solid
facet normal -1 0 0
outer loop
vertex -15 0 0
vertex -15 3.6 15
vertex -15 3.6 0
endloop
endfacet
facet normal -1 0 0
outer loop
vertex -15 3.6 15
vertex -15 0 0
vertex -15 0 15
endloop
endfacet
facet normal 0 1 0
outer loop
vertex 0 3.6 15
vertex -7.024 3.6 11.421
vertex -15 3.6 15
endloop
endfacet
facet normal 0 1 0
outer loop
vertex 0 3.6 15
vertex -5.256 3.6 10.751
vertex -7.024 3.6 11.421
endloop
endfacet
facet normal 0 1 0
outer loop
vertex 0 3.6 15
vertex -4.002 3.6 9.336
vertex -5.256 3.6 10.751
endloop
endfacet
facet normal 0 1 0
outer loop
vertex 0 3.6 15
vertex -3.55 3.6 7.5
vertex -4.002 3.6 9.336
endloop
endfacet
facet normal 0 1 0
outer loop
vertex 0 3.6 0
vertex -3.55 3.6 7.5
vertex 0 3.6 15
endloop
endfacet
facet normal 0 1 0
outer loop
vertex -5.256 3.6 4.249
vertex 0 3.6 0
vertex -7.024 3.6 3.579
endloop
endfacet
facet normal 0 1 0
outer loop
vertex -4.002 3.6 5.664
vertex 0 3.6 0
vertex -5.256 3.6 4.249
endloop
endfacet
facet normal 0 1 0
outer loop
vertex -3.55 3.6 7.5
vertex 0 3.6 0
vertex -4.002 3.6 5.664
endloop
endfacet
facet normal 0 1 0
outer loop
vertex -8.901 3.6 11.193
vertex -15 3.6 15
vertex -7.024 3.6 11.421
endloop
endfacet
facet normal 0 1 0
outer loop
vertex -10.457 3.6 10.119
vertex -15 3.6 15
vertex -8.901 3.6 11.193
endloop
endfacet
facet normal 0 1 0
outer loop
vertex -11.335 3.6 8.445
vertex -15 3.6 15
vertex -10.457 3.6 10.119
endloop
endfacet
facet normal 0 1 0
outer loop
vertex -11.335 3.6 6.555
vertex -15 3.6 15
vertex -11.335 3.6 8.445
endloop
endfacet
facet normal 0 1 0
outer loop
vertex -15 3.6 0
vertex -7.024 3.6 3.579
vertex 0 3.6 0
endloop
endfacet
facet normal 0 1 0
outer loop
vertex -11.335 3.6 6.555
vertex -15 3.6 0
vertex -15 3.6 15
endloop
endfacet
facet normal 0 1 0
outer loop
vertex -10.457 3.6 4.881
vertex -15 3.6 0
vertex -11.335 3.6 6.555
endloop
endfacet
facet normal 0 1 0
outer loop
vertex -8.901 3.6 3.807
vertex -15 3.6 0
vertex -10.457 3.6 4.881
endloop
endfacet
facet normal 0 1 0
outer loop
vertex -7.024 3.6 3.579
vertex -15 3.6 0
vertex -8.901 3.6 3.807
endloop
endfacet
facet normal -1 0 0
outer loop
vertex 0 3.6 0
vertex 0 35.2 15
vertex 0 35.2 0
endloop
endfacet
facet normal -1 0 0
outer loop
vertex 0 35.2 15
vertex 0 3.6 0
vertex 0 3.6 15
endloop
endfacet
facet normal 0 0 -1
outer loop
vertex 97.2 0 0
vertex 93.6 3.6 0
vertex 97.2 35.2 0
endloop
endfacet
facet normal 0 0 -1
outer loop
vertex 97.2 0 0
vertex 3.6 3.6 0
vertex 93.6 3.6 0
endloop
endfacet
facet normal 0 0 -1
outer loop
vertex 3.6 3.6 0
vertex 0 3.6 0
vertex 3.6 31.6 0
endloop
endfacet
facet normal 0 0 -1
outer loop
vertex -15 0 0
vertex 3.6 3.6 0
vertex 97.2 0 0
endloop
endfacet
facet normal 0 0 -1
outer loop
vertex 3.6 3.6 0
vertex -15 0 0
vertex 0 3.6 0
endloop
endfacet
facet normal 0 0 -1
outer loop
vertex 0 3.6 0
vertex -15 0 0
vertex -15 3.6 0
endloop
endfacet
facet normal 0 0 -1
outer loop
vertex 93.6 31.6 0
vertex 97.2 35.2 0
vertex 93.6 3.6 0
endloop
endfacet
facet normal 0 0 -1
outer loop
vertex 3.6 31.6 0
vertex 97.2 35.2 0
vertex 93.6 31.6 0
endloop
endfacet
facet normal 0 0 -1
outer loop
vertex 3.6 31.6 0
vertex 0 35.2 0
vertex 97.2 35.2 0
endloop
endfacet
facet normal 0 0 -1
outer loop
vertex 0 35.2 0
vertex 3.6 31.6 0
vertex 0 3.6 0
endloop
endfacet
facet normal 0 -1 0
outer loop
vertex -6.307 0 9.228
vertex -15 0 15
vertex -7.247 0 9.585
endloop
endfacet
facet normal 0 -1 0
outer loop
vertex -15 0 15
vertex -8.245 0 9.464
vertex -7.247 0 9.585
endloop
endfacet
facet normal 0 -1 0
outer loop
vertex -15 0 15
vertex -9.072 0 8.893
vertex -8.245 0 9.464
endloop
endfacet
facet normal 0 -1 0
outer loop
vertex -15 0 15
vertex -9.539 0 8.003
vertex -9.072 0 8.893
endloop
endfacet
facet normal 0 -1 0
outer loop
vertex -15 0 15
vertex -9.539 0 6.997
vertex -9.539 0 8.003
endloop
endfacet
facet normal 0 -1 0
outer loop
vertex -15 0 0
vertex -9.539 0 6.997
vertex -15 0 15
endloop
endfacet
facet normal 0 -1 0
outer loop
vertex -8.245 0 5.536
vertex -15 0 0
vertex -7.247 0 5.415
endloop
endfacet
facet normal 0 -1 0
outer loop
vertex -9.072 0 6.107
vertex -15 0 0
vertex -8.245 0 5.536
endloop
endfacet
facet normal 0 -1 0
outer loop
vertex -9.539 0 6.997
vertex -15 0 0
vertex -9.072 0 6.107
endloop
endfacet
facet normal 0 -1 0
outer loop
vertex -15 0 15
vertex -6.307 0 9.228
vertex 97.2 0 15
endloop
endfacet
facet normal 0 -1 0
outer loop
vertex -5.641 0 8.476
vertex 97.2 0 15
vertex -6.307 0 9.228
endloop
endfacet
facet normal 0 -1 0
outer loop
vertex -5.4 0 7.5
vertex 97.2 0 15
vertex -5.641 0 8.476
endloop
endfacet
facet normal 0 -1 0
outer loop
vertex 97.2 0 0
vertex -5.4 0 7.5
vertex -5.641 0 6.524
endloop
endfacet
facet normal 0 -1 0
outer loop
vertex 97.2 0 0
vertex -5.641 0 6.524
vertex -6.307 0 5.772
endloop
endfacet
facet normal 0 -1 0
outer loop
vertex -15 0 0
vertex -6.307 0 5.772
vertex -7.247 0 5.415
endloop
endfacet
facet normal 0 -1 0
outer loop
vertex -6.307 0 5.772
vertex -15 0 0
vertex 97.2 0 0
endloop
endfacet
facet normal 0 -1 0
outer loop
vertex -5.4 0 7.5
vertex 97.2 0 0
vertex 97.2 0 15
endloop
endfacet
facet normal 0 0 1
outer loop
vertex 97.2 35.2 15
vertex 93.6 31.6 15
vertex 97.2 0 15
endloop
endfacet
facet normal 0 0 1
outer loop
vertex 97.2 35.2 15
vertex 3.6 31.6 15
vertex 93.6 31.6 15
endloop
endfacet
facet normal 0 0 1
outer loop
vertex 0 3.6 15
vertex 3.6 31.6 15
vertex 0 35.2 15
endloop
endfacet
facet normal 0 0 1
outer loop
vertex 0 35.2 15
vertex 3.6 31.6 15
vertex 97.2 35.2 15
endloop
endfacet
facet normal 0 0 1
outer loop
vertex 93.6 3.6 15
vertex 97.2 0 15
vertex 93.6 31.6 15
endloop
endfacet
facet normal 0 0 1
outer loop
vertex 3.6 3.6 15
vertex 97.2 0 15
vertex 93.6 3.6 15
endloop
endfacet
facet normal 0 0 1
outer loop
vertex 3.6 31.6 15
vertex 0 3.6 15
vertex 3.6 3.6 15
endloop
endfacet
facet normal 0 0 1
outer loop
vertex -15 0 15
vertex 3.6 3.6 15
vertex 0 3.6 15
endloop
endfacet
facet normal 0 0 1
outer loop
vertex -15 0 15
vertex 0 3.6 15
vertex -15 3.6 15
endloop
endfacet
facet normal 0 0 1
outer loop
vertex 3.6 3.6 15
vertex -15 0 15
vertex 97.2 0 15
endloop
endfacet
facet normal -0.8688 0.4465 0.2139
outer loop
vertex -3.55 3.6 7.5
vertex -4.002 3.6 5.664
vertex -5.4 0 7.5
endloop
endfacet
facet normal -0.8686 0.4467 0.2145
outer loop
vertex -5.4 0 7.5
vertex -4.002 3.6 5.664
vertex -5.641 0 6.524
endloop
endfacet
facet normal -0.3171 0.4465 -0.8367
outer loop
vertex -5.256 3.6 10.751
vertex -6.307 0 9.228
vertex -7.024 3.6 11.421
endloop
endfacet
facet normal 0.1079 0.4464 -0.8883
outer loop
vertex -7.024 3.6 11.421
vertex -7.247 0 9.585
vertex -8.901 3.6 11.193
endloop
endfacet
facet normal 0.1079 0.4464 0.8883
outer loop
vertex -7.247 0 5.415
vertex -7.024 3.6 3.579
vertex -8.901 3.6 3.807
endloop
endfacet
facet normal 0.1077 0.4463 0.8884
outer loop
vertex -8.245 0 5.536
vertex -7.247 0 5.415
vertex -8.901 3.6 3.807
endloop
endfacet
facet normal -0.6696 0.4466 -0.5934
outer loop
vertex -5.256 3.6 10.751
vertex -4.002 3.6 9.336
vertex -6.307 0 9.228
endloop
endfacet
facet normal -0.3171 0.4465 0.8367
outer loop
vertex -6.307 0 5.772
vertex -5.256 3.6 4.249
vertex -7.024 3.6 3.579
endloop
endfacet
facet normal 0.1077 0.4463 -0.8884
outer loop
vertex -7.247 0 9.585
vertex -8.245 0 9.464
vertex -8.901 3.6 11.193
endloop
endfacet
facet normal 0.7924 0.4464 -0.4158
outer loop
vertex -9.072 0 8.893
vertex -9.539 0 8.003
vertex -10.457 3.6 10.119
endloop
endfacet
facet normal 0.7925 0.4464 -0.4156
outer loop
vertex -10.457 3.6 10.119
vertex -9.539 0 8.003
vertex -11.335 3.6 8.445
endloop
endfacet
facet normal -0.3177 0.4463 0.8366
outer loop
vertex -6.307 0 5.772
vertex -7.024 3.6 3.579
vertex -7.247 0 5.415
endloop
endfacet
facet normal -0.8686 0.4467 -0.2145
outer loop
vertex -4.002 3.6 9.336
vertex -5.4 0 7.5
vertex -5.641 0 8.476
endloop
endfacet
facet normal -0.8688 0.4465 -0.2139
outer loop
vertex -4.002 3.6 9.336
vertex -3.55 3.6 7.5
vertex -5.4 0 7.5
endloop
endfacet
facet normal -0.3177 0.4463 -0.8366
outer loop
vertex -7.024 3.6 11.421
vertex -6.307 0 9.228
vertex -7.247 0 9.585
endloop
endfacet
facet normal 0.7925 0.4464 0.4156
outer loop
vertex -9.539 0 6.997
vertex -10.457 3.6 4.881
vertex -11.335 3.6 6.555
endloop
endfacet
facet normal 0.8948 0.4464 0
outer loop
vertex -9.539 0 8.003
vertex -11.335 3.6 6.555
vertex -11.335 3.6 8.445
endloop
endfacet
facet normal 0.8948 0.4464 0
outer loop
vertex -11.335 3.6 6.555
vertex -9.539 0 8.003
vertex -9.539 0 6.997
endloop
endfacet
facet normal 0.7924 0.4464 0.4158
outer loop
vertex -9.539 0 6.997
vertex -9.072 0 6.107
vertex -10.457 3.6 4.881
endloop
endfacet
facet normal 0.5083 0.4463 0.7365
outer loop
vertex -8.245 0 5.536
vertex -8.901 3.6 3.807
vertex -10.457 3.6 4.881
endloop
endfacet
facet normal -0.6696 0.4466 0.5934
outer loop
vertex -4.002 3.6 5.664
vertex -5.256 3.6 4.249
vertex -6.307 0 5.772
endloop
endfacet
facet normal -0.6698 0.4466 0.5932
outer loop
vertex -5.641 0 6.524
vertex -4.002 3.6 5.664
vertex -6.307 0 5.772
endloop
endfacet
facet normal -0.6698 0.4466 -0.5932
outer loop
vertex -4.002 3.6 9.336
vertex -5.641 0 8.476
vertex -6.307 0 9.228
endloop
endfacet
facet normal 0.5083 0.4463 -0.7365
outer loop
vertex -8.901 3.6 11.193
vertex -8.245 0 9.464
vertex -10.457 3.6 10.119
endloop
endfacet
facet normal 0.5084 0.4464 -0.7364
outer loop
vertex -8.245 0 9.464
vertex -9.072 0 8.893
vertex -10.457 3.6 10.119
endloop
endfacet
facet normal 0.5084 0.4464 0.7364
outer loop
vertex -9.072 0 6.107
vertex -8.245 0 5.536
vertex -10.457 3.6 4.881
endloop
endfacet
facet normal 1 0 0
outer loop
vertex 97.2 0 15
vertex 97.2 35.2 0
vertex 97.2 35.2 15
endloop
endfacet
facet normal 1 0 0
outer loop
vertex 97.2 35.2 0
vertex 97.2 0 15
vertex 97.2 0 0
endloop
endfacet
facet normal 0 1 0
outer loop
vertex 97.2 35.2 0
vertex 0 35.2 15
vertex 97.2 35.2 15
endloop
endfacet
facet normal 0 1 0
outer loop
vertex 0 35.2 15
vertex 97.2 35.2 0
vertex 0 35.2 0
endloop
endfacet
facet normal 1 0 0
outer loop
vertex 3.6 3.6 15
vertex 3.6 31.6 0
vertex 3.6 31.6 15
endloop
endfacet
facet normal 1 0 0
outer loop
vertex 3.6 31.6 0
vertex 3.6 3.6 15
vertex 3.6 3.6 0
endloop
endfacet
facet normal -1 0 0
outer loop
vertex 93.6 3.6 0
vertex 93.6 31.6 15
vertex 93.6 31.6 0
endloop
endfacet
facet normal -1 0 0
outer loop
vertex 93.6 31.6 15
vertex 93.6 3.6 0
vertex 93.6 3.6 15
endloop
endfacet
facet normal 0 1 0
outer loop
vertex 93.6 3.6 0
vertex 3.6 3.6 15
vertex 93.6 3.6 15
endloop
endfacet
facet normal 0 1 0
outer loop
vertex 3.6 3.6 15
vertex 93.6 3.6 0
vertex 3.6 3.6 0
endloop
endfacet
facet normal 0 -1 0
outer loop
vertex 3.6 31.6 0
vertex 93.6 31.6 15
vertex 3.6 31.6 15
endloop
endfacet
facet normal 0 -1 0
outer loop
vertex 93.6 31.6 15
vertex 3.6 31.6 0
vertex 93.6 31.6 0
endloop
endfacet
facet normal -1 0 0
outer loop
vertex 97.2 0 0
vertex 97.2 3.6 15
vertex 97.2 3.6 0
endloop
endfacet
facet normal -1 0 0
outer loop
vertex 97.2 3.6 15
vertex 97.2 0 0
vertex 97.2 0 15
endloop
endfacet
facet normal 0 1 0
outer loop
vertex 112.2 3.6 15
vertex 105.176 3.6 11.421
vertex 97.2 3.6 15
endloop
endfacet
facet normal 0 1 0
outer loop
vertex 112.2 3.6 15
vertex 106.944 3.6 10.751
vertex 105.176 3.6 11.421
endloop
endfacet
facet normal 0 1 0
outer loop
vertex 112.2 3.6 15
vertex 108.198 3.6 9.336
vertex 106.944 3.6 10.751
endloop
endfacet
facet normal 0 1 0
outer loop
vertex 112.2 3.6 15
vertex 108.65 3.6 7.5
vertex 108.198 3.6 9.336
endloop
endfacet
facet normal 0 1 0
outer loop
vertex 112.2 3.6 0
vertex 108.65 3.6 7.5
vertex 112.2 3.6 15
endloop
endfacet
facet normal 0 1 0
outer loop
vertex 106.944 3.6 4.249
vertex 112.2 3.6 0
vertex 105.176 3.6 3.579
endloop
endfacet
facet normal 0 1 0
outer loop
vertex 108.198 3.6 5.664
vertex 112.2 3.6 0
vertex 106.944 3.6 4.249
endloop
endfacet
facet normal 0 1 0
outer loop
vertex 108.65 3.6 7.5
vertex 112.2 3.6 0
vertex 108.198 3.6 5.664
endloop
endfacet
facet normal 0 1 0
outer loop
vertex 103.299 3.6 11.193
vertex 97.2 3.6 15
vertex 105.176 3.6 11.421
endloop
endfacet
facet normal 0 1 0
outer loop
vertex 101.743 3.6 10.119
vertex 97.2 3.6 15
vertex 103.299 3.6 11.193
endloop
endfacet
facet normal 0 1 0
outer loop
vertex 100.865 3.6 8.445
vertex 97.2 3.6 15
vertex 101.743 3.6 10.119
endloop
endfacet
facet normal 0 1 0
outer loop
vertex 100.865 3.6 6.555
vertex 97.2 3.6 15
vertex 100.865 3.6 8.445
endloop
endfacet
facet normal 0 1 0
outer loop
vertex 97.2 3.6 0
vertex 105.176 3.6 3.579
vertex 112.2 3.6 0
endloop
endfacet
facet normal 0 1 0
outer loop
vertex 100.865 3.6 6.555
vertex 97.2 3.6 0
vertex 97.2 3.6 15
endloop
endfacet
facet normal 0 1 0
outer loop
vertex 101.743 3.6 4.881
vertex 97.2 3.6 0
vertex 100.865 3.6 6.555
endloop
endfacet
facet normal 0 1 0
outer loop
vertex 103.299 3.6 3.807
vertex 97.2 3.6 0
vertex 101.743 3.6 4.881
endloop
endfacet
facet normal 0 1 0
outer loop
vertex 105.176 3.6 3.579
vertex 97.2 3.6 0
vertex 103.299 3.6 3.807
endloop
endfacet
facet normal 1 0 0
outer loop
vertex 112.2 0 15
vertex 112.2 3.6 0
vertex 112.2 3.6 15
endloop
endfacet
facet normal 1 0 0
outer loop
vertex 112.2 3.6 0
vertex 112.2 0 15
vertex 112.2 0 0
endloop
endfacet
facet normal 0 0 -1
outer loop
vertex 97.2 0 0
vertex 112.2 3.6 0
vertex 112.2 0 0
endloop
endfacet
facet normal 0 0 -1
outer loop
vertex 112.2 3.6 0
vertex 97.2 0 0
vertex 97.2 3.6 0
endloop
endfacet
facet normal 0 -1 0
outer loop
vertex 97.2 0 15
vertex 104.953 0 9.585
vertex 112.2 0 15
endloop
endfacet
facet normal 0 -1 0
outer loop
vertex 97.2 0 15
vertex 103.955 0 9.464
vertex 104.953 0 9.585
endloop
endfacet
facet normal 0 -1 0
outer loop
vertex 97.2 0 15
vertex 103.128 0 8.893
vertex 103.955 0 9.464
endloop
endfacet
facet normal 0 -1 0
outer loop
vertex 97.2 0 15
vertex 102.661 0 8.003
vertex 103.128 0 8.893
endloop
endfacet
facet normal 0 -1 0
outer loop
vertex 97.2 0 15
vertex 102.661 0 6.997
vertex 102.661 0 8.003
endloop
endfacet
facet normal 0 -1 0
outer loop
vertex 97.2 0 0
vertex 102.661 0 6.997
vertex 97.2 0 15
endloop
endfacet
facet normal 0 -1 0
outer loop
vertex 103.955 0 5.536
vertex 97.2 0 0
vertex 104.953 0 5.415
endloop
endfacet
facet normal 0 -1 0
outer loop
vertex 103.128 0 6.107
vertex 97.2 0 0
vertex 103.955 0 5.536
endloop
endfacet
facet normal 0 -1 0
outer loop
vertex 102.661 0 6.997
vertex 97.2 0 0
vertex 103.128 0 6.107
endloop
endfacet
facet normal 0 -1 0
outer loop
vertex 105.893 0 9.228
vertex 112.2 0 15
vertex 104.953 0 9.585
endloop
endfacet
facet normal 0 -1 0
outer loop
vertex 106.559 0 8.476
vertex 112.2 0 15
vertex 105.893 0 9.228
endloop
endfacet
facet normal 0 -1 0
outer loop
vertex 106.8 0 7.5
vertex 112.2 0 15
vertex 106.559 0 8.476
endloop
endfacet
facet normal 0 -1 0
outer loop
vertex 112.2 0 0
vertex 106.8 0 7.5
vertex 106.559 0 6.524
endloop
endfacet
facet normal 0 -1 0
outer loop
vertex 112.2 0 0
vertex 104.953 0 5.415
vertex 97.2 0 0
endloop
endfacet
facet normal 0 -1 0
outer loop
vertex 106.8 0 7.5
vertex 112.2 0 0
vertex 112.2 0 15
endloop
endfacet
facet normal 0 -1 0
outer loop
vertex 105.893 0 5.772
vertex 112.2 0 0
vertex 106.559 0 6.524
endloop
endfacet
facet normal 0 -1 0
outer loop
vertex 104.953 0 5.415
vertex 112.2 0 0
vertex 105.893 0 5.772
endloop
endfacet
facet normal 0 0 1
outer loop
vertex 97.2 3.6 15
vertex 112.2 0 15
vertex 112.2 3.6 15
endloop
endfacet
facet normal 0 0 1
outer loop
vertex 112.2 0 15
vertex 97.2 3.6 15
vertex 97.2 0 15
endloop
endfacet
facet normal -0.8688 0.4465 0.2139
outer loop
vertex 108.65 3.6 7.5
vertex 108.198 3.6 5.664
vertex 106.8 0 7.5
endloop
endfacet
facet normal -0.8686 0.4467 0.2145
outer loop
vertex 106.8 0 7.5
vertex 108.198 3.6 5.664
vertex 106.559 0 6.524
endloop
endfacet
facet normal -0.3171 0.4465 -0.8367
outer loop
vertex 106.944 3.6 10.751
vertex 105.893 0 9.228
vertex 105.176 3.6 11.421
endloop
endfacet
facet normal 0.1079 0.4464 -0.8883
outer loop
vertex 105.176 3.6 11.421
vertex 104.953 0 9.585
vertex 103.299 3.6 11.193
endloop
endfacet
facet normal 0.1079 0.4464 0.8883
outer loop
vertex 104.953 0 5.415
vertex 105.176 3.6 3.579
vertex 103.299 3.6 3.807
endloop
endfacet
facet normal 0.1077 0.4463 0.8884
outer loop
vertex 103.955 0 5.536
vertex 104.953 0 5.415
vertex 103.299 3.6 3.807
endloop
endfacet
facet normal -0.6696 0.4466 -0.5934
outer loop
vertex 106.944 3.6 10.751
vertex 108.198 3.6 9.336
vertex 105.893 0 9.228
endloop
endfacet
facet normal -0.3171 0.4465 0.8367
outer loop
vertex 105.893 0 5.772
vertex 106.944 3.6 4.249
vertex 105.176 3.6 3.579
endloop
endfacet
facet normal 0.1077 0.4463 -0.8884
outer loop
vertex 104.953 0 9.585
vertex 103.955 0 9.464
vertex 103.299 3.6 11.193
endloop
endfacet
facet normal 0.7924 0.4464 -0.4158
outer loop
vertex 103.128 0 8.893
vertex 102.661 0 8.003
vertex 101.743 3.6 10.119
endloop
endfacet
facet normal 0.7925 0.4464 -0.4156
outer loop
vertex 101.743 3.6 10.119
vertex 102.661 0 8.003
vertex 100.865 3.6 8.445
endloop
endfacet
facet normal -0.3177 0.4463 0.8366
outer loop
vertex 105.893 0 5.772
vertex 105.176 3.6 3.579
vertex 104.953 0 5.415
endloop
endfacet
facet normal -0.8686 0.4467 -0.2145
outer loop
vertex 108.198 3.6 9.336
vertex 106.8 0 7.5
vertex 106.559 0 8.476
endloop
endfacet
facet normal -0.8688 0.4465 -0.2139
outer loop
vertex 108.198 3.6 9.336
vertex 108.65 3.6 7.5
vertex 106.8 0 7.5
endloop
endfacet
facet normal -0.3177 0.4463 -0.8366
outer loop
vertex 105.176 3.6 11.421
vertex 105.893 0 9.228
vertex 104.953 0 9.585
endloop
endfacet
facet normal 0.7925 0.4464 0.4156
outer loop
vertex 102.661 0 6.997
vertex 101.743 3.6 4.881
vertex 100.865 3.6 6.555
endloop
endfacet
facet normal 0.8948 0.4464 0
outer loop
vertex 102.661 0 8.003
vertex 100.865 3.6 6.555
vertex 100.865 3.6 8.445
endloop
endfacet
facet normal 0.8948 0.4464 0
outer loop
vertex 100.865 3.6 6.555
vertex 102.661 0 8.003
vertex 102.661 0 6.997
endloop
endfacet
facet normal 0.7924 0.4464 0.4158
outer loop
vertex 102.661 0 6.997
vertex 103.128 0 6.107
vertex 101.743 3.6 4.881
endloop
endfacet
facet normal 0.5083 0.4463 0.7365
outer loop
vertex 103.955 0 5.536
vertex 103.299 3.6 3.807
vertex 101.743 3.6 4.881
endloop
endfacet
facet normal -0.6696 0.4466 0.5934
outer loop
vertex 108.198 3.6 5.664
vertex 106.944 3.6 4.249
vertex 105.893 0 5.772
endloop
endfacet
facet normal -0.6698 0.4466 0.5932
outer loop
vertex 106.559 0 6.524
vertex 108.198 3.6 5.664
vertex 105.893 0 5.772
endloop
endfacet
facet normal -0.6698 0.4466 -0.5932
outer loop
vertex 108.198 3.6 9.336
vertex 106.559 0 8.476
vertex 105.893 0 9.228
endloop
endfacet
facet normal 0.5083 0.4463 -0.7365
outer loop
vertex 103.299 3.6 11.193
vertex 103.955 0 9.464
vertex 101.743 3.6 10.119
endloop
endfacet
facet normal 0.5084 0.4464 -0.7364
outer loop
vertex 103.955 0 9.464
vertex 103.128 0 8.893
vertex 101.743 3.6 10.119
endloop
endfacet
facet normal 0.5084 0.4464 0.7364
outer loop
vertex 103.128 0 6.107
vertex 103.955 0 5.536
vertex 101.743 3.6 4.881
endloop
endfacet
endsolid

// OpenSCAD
thickness=3.6;
2thickness=thickness*2;

screw_d=4.2;
counter_sink=7.9;

length=90;
width=28;
height=15;

module screw_tab() {
    difference() {
        cube([height, height, thickness]);
        translate([height/2, height/2, 0])cylinder(thickness, d1=screw_d, d2=counter_sink);
    }
}
    

difference() {
    cube([length+2thickness, width+2thickness, height]);
    translate([thickness, thickness, 0])cube([length, width, height]);
}

translate([-height, 0, height])
    rotate([-90, 0, 0])
    screw_tab();

translate([length+2thickness, 0, height])
    rotate([-90, 0, 0])
    screw_tab();
